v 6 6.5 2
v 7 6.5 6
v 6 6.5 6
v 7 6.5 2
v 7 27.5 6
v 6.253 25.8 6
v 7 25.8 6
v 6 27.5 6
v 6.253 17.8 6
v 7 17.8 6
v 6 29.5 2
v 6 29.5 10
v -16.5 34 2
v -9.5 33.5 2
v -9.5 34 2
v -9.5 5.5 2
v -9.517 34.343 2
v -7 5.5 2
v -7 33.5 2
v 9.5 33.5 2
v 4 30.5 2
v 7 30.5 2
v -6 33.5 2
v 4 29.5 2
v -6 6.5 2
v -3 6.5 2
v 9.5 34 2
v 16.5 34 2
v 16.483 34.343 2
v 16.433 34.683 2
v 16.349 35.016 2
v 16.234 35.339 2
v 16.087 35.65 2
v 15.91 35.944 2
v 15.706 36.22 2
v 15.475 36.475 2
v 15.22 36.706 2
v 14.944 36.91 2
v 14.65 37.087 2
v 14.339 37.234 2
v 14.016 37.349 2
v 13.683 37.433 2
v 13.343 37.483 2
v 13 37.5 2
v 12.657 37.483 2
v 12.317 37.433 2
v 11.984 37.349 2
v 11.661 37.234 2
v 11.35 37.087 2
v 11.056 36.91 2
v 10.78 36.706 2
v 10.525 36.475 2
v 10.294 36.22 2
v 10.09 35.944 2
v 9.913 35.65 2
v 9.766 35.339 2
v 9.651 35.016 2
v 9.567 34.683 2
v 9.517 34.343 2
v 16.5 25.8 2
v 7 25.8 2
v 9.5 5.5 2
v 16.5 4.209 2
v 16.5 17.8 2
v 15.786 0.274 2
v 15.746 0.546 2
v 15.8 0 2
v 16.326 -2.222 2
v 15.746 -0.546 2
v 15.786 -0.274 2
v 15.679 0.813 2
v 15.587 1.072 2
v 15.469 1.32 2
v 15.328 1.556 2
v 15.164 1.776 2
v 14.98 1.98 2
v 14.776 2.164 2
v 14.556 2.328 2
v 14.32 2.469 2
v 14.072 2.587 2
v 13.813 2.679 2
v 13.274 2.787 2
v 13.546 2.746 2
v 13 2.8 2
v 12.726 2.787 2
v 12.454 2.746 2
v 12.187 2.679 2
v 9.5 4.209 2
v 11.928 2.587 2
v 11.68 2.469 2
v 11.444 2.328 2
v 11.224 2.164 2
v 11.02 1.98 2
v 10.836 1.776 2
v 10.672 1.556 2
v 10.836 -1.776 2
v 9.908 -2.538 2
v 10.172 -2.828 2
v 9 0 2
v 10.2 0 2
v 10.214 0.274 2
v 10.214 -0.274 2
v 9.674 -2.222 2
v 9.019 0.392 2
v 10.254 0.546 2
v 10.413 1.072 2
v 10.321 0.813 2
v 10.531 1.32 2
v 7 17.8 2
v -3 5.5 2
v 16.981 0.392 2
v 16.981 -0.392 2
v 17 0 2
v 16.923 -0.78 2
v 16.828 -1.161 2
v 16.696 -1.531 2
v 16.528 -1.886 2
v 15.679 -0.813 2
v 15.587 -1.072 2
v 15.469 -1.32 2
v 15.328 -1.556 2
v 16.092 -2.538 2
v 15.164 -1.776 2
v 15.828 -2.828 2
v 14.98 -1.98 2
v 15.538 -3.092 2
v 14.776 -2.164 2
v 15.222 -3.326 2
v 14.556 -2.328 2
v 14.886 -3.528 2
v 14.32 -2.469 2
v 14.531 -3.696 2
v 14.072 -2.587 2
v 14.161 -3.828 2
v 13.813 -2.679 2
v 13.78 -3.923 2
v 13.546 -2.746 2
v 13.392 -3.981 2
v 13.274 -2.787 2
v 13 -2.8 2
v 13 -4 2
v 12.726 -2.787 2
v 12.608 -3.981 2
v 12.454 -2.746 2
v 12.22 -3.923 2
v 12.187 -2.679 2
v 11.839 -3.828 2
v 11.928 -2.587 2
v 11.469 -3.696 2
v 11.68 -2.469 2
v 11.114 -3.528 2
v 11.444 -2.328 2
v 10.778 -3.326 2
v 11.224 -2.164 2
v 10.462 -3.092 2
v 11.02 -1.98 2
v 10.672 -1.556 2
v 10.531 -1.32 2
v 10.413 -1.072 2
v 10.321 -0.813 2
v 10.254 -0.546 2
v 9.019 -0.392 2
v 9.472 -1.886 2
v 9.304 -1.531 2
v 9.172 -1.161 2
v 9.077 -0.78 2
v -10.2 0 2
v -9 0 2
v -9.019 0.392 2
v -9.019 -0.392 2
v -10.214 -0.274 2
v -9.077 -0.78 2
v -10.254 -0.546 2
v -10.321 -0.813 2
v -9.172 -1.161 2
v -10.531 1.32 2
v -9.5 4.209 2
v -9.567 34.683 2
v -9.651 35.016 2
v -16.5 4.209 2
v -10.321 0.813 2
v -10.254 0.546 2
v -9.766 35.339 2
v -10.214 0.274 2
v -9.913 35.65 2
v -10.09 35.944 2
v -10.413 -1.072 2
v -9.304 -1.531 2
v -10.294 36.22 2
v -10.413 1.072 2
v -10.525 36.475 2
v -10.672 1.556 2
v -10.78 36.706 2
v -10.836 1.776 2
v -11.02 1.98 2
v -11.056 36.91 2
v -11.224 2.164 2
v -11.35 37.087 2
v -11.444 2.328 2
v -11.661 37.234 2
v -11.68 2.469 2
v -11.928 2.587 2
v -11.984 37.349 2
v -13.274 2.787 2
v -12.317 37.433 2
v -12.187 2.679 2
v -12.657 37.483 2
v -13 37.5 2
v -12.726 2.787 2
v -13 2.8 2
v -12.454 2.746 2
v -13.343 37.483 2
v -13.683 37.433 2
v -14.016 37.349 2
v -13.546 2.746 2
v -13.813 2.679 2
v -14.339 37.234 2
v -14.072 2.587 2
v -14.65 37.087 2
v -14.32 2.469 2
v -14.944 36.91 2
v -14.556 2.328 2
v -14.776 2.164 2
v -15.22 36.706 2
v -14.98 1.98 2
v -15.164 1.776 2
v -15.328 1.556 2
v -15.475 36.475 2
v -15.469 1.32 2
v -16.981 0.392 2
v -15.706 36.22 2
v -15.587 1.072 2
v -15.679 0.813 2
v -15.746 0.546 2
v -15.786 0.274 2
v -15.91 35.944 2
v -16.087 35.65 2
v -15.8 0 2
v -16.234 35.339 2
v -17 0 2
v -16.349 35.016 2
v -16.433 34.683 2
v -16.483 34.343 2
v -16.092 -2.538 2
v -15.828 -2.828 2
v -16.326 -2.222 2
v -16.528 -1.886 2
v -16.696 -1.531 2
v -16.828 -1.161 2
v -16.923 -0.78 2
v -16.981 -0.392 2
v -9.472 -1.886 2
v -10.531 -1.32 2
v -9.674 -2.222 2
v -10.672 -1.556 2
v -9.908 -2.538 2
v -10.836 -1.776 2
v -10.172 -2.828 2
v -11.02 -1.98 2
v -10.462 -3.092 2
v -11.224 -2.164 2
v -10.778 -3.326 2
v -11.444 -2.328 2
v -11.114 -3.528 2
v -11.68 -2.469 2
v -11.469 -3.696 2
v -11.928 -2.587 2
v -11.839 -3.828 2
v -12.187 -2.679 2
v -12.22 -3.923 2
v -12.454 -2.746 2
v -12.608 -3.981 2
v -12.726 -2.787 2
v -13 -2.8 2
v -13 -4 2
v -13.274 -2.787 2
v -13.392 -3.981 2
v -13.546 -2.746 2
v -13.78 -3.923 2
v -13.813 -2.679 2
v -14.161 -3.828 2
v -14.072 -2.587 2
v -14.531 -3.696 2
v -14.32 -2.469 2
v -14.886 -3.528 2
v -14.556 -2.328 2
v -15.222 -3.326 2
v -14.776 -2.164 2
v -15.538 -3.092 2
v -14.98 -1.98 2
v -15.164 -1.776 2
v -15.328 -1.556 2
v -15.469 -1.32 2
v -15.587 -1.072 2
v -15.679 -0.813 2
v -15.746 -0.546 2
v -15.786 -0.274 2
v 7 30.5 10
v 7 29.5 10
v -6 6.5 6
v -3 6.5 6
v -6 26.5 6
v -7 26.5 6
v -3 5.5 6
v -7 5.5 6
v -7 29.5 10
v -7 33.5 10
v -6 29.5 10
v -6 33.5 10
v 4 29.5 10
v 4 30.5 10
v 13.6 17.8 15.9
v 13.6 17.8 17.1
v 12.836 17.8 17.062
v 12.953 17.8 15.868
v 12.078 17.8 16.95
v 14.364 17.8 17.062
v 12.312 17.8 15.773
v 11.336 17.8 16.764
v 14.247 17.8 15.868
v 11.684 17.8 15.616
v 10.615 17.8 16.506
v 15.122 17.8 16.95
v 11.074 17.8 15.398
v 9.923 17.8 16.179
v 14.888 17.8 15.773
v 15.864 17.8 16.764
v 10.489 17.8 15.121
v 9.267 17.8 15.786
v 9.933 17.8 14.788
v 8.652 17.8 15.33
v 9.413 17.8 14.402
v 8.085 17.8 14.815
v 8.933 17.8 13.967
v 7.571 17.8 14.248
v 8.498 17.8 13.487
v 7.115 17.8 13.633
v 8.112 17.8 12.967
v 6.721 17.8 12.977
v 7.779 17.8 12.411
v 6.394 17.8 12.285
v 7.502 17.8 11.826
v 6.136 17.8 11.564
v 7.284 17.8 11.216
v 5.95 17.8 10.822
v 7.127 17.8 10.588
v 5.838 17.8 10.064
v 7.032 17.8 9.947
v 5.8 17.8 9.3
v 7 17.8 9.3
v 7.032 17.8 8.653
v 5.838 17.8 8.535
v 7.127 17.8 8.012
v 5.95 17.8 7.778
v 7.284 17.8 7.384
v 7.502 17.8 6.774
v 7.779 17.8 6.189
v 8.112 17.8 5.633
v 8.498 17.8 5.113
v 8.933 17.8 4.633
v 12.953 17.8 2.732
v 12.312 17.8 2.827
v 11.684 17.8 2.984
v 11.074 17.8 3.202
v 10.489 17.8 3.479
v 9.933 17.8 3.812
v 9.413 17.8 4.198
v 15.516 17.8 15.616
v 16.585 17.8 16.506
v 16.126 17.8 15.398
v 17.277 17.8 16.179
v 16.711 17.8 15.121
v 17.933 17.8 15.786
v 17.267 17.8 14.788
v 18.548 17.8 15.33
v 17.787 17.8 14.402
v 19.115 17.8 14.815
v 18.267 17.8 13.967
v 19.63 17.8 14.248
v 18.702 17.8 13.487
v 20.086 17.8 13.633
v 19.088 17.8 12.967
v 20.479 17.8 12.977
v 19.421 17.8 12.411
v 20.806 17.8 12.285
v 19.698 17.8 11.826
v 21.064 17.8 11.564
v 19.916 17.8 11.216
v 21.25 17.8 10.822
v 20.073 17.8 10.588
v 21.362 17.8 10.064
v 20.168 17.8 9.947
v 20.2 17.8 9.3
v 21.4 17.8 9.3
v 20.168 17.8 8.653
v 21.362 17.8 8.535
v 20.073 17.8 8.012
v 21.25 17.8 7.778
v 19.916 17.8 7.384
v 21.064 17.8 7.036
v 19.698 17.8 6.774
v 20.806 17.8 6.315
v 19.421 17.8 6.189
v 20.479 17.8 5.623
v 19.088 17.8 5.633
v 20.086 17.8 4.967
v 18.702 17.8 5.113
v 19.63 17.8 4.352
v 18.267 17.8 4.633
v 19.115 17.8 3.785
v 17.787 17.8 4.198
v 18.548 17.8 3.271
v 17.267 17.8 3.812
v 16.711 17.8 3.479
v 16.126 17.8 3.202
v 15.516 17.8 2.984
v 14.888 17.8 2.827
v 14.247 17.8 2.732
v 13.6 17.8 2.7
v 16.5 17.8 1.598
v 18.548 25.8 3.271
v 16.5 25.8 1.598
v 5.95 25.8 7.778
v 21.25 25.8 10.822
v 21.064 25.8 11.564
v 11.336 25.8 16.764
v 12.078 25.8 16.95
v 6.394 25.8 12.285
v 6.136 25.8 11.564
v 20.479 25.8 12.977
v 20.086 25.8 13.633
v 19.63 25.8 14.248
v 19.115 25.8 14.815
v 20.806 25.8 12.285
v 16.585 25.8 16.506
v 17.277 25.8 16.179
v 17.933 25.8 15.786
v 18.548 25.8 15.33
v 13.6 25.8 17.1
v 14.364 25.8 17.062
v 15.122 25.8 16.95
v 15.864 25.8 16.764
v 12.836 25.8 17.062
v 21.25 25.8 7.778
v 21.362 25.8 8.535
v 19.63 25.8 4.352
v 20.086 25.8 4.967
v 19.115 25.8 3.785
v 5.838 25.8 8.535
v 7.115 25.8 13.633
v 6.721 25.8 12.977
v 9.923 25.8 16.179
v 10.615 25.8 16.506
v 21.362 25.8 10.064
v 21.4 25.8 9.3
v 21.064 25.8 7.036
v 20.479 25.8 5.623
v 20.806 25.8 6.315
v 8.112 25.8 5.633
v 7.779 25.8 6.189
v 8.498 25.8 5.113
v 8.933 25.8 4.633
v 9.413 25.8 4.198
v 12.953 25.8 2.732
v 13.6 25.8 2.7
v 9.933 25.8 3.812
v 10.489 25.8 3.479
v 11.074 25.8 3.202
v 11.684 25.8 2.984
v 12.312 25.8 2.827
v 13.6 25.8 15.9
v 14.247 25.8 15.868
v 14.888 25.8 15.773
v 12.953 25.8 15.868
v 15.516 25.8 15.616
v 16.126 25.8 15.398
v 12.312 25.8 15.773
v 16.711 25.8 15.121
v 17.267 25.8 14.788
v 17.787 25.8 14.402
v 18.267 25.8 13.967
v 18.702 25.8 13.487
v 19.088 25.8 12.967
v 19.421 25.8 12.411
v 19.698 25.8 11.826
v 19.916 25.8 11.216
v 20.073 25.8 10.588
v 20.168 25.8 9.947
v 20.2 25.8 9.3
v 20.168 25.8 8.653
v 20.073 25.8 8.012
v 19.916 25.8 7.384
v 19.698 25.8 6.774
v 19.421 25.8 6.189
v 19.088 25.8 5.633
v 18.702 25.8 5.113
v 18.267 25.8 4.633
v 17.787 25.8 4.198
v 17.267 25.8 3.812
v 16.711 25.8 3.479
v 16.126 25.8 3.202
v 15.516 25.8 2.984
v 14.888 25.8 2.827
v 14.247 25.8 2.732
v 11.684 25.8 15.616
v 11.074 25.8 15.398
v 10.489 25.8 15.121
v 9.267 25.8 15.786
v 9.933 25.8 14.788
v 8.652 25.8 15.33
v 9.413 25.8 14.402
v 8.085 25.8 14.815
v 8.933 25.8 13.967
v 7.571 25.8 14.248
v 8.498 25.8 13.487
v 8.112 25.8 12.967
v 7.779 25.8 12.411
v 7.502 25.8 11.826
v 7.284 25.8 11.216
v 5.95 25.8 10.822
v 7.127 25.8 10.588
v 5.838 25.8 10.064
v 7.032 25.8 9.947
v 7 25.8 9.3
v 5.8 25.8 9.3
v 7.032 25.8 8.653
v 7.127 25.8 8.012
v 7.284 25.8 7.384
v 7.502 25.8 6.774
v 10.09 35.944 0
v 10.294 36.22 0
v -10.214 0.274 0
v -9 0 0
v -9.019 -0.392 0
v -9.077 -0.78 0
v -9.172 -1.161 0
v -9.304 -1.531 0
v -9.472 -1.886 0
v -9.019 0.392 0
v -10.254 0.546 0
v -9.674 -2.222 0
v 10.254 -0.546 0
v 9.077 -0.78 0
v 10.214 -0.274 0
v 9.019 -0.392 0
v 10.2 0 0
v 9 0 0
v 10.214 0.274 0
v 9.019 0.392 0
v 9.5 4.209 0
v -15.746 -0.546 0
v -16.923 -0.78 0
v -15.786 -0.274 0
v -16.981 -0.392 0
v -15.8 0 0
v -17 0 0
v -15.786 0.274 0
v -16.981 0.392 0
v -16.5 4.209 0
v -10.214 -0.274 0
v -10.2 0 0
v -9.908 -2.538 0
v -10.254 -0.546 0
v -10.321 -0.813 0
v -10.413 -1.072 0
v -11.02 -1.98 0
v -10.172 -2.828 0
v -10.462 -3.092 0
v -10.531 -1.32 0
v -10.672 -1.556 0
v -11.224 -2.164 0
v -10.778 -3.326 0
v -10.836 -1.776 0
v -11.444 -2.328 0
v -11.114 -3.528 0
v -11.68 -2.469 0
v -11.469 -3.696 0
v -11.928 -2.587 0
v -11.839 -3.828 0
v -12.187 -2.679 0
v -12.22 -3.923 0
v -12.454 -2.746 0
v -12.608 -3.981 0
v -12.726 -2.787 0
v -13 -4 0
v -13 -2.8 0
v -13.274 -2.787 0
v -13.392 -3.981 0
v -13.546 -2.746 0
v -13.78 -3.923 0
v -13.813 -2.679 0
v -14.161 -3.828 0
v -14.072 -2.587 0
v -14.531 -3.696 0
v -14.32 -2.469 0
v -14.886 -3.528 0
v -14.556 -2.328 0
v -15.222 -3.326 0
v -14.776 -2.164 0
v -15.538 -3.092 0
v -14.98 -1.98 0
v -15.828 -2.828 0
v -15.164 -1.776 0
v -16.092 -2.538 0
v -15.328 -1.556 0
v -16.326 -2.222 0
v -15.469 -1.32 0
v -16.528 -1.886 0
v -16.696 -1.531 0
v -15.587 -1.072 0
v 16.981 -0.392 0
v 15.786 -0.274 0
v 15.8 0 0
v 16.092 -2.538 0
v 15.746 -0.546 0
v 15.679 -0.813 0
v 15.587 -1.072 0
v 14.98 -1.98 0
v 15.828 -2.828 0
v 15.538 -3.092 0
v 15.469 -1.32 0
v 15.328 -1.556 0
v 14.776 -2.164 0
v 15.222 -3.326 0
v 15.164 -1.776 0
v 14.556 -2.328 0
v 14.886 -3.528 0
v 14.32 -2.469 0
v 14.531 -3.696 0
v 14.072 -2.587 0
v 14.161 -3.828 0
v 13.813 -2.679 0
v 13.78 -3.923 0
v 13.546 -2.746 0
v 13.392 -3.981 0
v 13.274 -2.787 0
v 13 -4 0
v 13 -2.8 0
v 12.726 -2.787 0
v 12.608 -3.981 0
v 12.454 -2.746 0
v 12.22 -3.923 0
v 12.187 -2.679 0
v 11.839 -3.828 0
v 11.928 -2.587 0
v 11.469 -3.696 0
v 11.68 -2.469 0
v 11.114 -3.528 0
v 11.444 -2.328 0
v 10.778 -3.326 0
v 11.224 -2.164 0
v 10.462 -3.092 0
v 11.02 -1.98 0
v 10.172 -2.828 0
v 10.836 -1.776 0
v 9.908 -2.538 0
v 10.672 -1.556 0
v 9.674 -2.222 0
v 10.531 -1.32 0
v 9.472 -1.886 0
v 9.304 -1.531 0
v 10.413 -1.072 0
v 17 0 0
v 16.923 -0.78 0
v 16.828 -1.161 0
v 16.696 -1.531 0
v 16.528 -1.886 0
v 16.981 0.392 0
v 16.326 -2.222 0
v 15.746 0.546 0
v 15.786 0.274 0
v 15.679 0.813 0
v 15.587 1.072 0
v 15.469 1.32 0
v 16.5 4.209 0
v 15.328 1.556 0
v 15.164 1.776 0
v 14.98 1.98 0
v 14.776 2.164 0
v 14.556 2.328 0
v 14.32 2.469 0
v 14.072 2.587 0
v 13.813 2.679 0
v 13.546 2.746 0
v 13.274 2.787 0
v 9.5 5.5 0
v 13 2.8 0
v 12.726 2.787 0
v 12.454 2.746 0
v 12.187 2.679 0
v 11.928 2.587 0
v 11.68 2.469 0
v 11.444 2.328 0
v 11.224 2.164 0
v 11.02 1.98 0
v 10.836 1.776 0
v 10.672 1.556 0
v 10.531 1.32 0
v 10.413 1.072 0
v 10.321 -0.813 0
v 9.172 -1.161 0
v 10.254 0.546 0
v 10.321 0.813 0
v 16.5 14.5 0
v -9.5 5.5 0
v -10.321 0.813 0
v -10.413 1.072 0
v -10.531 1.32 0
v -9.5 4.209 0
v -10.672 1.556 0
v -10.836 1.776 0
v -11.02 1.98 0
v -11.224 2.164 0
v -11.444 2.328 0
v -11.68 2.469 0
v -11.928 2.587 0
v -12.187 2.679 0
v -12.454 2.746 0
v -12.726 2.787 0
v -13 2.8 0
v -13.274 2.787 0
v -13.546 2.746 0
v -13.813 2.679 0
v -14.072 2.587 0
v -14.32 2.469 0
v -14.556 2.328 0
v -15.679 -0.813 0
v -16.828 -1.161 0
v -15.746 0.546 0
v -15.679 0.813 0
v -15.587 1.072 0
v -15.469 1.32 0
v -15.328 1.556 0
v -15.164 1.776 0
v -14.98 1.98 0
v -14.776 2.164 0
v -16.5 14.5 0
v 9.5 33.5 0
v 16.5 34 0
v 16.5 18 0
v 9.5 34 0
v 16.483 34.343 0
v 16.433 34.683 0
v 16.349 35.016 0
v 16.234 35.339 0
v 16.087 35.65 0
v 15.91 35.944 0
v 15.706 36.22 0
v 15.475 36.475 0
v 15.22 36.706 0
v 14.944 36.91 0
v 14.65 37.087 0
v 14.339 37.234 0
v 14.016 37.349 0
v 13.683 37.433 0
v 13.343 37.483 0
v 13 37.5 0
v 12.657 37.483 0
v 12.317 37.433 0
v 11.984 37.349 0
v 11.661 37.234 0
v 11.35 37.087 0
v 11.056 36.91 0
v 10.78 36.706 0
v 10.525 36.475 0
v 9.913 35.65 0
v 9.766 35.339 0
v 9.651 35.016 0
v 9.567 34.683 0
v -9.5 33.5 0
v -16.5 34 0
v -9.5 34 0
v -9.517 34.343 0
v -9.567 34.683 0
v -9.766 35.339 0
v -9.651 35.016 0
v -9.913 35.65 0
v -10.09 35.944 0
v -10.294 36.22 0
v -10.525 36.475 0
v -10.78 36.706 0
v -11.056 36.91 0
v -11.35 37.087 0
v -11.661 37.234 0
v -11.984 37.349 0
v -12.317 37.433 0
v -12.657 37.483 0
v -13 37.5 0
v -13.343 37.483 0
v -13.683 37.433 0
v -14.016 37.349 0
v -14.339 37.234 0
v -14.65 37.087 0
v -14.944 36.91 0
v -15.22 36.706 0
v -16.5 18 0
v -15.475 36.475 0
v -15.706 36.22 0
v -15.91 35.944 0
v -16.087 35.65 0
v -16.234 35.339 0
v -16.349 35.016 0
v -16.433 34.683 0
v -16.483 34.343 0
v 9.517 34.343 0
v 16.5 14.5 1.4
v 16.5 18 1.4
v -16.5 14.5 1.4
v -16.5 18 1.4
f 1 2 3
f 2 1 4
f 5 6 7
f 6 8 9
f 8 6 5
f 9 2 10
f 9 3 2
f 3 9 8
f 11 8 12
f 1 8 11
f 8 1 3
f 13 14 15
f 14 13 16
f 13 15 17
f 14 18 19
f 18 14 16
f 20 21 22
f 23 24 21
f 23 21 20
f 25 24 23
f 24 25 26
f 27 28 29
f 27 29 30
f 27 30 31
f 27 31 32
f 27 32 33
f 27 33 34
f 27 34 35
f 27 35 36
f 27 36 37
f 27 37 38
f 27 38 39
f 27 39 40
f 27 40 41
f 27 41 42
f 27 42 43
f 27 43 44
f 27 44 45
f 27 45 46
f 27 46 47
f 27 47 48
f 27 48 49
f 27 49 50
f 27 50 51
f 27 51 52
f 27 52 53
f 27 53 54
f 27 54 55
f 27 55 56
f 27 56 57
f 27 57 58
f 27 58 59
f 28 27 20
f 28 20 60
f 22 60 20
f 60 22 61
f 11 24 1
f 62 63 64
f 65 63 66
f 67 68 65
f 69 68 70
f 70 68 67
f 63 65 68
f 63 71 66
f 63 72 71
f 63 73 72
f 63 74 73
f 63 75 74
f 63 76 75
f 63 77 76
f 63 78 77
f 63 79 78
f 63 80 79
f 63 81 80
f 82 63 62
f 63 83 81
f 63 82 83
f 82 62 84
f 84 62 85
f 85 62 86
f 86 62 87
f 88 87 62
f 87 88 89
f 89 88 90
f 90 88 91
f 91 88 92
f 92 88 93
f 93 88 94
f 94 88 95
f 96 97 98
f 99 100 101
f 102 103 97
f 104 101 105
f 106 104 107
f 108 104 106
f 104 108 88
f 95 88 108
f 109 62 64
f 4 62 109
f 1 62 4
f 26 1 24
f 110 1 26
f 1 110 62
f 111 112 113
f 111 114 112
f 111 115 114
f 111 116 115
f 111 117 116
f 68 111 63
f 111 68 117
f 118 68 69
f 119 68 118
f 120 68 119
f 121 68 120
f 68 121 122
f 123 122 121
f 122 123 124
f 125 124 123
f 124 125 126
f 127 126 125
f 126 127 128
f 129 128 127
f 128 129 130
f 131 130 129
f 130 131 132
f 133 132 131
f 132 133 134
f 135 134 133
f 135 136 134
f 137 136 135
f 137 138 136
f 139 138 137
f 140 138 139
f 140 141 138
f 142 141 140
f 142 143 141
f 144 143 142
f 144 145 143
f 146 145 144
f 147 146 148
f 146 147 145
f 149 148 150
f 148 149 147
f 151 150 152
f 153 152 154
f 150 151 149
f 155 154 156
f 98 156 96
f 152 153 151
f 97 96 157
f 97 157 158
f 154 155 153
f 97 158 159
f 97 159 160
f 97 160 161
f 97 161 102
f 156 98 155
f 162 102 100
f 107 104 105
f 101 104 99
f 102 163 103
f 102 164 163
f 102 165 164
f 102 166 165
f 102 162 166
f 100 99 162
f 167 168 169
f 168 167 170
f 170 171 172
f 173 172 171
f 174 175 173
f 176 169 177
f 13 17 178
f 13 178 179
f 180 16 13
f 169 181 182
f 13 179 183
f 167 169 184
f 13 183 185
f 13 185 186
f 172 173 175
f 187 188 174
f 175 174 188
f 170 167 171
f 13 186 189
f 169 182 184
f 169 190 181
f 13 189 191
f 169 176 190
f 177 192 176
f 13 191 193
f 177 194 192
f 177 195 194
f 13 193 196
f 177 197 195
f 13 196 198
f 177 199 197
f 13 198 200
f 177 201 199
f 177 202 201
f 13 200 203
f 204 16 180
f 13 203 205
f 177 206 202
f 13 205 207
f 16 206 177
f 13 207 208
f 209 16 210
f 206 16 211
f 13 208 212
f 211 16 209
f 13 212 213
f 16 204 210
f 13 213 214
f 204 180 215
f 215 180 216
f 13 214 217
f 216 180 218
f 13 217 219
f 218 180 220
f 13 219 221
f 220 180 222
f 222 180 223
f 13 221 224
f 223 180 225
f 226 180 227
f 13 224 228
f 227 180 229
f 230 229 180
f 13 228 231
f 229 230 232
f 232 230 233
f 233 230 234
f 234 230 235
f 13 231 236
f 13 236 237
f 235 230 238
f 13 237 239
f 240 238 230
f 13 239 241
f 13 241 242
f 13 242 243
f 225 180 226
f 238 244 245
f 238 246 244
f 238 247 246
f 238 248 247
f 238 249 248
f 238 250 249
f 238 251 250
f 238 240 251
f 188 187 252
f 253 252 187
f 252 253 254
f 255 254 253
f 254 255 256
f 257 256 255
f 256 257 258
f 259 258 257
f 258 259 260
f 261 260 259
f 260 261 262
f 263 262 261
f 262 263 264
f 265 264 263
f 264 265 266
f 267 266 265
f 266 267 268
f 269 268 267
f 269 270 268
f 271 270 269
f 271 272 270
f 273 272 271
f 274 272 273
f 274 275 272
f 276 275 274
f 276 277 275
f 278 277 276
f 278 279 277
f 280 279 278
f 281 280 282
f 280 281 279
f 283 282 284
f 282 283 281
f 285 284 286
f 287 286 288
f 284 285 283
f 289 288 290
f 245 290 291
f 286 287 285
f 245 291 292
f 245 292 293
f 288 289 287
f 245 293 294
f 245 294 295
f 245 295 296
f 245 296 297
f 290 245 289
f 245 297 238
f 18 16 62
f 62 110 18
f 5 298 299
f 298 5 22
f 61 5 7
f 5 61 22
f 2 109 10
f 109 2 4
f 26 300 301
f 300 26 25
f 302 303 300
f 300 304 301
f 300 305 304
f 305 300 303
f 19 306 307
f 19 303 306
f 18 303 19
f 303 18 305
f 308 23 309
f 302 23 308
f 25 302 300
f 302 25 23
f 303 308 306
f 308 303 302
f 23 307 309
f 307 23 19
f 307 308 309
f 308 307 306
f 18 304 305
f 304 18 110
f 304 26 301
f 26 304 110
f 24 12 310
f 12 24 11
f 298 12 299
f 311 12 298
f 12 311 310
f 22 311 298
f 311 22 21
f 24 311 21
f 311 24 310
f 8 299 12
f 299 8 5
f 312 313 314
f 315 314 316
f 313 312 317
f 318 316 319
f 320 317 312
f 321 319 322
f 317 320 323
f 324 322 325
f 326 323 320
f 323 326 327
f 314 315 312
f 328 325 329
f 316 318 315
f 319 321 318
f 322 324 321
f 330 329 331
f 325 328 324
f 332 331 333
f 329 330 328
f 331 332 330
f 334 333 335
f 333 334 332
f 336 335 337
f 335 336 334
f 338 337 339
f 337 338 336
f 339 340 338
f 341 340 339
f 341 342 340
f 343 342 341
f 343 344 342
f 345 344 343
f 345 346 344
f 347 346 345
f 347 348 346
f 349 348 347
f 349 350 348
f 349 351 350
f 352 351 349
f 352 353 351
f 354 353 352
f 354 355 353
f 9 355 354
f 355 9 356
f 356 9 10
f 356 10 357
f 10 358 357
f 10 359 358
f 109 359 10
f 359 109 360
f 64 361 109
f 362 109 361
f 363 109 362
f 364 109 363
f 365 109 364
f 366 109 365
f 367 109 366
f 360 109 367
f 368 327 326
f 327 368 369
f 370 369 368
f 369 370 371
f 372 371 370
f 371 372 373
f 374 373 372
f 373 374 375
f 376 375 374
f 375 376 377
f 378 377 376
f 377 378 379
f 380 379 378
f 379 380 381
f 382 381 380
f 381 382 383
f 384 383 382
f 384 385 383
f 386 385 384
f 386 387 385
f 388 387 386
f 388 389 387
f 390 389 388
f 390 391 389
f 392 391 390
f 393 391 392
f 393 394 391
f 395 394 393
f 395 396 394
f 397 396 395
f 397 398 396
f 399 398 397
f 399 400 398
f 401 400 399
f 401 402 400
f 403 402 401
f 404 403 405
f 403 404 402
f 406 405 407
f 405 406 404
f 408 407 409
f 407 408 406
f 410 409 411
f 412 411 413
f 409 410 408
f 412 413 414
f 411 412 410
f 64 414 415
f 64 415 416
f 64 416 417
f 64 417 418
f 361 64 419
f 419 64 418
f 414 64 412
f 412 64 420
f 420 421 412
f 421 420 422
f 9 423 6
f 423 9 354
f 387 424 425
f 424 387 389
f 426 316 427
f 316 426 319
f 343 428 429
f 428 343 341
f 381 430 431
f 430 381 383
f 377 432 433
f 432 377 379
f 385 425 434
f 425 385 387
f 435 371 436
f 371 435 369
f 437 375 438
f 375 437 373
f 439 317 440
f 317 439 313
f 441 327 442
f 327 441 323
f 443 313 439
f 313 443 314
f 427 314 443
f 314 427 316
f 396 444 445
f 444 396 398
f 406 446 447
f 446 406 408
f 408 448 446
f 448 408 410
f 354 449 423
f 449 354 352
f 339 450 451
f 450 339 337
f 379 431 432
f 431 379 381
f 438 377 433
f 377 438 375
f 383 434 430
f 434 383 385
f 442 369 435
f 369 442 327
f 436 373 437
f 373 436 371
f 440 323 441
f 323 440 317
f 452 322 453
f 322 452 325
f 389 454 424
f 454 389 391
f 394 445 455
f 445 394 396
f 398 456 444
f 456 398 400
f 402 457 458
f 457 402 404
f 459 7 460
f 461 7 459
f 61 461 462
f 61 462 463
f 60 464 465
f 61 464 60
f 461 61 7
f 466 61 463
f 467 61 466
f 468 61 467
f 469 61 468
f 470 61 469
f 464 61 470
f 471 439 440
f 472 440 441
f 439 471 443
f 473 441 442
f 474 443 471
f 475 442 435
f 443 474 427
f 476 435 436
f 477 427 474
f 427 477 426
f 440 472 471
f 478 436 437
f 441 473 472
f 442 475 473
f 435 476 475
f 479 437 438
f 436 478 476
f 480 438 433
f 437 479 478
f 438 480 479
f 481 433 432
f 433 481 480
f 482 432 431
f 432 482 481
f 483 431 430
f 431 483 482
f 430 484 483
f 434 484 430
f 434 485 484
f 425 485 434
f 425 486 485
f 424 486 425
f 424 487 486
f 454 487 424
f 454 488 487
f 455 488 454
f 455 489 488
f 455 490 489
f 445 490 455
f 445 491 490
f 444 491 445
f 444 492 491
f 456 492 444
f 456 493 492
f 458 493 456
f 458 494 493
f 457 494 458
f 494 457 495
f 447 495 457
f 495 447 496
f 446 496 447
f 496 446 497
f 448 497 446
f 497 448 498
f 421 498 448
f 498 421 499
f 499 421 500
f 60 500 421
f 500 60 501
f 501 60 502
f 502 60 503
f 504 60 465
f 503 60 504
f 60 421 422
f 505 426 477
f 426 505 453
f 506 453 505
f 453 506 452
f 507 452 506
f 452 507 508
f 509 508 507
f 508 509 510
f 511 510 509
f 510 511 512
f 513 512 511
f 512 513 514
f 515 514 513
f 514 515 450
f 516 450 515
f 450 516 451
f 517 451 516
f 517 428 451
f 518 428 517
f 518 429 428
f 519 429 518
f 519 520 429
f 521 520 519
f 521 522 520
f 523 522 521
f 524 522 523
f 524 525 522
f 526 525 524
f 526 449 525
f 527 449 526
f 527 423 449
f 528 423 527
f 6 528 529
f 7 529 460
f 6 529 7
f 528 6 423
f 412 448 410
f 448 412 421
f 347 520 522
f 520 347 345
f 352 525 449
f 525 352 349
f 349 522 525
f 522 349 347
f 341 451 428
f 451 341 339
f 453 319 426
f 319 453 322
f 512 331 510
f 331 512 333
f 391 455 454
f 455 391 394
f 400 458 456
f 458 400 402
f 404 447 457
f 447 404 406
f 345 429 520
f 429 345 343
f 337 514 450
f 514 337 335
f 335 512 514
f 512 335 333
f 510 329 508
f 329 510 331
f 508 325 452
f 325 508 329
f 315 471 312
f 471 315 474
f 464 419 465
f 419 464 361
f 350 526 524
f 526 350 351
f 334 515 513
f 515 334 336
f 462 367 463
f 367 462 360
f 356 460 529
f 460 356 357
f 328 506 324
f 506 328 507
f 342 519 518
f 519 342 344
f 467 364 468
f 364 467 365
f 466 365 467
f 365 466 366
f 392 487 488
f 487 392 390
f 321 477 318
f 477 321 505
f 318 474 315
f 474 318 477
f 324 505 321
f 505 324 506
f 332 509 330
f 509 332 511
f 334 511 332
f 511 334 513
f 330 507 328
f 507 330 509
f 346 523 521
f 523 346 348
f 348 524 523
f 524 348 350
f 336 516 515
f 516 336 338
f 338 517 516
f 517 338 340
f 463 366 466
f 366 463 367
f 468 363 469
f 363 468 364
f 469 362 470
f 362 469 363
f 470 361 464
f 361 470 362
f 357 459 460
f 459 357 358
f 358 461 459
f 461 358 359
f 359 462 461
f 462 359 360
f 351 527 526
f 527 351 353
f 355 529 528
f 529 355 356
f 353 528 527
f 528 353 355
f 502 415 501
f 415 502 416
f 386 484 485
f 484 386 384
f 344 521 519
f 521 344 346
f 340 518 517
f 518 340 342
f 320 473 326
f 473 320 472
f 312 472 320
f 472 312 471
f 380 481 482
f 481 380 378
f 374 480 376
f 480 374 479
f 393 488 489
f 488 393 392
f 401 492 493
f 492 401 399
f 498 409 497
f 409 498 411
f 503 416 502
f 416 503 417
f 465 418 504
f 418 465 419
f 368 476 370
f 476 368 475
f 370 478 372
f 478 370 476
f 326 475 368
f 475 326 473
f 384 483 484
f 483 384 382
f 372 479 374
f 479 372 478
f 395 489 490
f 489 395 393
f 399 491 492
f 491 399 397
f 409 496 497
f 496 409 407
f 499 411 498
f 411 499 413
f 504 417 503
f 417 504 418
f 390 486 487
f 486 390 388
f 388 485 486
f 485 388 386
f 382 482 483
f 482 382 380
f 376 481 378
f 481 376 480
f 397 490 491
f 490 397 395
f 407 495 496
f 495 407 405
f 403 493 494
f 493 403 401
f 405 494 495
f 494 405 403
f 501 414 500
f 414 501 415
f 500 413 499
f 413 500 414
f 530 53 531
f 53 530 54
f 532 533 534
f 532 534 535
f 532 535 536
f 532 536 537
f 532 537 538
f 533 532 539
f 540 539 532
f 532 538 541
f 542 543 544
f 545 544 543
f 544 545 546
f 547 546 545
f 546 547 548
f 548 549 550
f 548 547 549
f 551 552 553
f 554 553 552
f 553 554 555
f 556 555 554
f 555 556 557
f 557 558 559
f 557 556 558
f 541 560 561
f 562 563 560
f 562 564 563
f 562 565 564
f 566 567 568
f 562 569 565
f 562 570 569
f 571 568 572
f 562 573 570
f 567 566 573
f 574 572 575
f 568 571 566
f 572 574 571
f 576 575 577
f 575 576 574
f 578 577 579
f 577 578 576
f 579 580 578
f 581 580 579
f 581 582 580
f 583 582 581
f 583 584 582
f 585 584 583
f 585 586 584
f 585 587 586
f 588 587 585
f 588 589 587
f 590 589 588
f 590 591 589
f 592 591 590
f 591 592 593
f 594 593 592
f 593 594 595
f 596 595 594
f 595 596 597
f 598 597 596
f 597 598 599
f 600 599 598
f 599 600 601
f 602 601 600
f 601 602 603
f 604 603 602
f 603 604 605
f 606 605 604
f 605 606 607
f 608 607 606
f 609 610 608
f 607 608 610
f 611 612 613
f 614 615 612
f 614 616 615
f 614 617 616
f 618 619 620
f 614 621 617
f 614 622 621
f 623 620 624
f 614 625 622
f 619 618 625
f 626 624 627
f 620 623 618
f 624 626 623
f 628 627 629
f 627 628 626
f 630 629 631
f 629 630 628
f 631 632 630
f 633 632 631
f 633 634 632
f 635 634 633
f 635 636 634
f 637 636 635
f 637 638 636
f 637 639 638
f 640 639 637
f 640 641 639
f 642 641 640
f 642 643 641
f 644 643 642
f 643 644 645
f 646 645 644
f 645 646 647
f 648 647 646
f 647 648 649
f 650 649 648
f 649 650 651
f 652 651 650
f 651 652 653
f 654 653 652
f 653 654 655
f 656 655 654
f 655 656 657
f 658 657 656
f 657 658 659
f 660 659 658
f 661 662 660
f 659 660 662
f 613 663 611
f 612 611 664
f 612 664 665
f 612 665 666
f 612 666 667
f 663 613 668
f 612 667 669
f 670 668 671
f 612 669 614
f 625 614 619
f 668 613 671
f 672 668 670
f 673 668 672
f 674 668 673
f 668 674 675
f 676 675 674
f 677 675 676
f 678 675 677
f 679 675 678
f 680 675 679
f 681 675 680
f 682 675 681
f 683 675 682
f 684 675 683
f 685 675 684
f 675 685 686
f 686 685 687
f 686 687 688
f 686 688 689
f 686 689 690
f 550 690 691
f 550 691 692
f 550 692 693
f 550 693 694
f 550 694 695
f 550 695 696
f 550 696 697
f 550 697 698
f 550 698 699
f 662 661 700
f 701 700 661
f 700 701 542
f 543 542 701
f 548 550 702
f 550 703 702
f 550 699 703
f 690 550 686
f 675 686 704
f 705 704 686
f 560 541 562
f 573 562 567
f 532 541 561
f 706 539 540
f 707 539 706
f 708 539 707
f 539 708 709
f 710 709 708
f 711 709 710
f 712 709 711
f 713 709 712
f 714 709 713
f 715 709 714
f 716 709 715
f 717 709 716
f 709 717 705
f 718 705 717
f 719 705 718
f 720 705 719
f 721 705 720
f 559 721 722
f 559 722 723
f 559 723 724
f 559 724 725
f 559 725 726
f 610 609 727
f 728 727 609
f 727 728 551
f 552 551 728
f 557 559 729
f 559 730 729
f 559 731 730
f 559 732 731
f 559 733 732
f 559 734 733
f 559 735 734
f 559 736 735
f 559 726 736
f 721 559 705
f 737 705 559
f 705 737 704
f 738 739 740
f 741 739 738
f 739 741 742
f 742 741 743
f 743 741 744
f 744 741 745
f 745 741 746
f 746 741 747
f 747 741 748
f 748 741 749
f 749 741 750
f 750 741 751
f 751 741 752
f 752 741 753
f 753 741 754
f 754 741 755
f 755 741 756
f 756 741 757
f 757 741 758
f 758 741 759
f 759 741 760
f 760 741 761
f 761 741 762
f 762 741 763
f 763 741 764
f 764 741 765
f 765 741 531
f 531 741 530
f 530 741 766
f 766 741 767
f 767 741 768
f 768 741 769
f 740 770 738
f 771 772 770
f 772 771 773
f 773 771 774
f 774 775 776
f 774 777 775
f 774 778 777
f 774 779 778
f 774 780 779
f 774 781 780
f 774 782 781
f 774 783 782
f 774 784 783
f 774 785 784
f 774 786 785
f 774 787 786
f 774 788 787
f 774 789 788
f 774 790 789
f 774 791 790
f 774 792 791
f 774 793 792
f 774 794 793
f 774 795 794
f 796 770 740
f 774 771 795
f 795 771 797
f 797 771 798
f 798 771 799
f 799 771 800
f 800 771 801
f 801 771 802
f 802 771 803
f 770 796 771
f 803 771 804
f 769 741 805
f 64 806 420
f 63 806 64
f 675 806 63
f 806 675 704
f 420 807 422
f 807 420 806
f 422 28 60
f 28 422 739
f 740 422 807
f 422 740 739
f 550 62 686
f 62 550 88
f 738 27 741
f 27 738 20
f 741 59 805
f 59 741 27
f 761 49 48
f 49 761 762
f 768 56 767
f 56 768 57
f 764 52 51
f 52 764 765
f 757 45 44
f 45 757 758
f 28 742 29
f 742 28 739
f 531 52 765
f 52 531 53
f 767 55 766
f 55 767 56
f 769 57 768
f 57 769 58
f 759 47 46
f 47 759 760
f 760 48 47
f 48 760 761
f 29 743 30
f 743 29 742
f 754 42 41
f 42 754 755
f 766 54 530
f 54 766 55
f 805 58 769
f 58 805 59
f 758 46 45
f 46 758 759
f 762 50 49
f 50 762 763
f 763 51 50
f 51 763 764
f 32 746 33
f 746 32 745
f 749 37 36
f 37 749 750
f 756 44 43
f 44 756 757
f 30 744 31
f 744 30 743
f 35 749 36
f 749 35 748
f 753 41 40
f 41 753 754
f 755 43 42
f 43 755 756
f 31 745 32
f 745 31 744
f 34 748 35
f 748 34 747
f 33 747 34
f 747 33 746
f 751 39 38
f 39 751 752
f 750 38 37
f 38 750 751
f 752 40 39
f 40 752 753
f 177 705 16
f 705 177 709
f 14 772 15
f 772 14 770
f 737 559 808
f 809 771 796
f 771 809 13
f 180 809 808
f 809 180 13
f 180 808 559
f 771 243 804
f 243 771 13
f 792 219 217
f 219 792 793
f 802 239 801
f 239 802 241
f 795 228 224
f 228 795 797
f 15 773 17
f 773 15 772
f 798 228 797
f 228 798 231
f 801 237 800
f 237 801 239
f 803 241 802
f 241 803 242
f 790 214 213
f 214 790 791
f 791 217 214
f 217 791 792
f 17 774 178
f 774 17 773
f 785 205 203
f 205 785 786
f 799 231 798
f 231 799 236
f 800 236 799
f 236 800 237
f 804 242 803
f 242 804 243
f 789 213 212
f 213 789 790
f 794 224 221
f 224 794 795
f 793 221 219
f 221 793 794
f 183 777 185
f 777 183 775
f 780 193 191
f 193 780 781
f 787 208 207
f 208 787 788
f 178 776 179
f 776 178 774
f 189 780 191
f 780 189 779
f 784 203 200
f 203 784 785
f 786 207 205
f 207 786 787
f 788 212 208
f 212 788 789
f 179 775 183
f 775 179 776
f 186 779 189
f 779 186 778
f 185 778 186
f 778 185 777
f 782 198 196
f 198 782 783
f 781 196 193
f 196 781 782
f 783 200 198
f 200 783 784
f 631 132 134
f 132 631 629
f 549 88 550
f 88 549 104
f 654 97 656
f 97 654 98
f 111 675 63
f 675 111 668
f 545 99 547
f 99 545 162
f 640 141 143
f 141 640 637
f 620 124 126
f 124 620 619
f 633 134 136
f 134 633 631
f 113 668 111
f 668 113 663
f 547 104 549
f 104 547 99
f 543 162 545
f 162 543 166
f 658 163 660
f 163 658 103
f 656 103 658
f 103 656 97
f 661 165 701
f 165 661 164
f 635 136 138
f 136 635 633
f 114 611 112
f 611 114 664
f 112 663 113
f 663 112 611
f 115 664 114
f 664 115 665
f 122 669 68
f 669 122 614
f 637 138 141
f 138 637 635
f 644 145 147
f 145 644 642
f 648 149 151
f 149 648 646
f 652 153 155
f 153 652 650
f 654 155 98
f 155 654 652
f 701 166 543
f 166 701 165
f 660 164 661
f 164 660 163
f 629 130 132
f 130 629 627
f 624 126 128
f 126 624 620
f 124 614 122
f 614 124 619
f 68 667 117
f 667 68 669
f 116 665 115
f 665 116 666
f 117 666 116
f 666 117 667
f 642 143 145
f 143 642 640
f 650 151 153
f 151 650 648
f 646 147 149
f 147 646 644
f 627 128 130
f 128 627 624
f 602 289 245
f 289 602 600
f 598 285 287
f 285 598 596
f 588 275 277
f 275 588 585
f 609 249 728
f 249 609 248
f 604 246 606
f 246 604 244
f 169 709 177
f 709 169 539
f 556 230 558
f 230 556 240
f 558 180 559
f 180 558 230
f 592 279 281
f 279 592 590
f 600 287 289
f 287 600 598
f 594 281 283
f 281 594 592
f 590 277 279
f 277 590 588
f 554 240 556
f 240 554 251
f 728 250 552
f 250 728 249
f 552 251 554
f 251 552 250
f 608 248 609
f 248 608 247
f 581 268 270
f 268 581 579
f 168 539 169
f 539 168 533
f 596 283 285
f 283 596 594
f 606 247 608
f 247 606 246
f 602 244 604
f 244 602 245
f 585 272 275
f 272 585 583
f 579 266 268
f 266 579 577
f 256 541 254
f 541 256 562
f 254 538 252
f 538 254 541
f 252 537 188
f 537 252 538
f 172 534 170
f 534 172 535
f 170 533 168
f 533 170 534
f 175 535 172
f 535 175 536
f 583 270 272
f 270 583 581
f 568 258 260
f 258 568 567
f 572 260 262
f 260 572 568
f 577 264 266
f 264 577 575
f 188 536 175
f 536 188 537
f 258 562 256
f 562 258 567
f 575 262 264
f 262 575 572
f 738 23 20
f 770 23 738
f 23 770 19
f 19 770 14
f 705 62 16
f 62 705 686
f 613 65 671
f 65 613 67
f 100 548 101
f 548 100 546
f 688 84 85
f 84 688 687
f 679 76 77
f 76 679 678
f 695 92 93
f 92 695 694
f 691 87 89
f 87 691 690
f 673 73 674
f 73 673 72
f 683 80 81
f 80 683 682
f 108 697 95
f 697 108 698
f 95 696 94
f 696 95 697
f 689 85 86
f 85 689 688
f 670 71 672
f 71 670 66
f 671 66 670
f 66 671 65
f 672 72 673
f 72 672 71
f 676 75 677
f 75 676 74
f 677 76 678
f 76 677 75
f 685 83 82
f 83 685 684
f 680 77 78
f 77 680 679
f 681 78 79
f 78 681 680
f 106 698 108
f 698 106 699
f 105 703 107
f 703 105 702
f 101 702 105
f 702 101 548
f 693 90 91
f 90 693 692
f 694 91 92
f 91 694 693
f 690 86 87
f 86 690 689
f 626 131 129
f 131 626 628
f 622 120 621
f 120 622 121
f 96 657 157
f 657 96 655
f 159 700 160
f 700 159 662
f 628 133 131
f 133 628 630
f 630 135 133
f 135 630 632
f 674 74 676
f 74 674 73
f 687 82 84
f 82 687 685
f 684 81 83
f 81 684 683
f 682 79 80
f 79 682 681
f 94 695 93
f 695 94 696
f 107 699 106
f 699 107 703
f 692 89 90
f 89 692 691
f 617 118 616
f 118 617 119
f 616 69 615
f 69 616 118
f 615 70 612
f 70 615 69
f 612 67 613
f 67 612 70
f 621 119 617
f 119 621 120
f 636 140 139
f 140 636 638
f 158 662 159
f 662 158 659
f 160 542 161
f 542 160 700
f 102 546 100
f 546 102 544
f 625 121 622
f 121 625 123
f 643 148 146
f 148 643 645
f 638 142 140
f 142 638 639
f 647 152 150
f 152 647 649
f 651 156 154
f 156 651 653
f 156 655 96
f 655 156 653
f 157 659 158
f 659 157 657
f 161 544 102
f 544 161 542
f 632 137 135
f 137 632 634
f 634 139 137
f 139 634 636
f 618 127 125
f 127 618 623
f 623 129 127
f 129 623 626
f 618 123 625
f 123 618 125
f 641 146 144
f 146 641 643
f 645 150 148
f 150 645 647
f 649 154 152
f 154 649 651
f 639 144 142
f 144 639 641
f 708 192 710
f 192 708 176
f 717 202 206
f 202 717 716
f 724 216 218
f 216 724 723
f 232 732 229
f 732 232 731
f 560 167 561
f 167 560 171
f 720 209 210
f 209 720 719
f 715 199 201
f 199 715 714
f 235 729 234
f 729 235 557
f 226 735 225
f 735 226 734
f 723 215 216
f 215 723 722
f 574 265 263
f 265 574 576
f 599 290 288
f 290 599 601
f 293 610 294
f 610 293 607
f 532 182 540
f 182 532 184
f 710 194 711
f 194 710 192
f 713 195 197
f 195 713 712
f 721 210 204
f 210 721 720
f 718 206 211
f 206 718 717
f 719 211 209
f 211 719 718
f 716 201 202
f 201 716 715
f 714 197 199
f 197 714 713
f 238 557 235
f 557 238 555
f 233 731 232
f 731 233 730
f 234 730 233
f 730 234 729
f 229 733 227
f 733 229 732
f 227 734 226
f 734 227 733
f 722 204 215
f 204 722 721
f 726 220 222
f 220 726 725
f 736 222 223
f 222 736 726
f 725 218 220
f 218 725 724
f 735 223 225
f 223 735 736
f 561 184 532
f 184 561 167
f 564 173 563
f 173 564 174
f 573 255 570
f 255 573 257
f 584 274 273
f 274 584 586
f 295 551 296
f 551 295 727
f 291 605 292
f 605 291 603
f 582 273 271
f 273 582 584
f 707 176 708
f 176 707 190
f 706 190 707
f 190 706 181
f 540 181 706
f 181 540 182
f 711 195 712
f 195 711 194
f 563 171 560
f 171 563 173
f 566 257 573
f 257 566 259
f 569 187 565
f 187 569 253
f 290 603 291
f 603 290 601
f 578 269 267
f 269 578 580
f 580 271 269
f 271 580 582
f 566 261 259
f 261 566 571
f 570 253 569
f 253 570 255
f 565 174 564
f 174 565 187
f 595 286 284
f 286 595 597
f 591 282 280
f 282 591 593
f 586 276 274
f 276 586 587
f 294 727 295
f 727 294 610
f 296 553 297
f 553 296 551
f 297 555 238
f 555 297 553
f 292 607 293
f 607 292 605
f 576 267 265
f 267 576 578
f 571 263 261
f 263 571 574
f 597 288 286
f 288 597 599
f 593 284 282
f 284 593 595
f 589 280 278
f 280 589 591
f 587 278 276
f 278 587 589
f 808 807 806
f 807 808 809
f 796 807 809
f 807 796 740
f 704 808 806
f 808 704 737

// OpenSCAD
/**
 * TBS Crossfire Nano mount for Armattan Chameleon (w/ cap mount)
 * 
 * This mount is intended for the Armattan Chameleon and holds
 * a TBS Crossfire Nano receiver (with heat shrink) and additionally 
 * a cap for noise reduction (default ring fits Panasonic 
 * FR-series 1000uF 35V cap).
 *
 * You need to replace the back standoffs with regular standoffs
 * to fit this mount.
 */ 
$fn = 64;

washer_diameter = 7;
strut_height = 2;
standoff_diameter = 5.6;
hole_spacing_back = 26;
washer_diameter = 7;
bend_length = 8;


// RX
rx_width = 12 ;
rx_length = 21;
rx_bevel_height = 4;
rx_bevel_width = 1;
zip_tie_width = 3.5;
zip_tie_height = 1.4;

cap_diameter = 13.2;
cap_retention_height = 8;

// standoff diameter + ring (uses a fixed value because 8.5 seems to be the magic number
// to make everything flush with the back end of the frame
sodpr = standoff_diameter + 2.4; // standoff_diameter + 2.4
// cap diameter plus ring
cdpr = cap_diameter + 2.4;
// hole spacing back half
hsbh = hole_spacing_back / 2;
// space between back struts
strut_spacing = hole_spacing_back - washer_diameter;
// bend length half
blh = bend_length / 2;
// strut spacing half
ssh = strut_spacing / 2;

module rx_mount() {

    // rx module mount
    difference() {
        union() {
            // transition struts
            hull() {
                translate([hsbh, 0, 0]) cylinder(d = washer_diameter, h = strut_height);
                translate([hsbh, 34, 0]) cylinder(d = washer_diameter, h = strut_height);
            }
            hull() {
                translate([-hsbh, 0, 0]) cylinder(d = washer_diameter, h = strut_height);
                translate([-hsbh, 34, 0]) cylinder(d = washer_diameter, h = strut_height);
            }            
            
            hull() {
                translate([hsbh, 0, 0]) cylinder(d = sodpr, h = strut_height);
                translate([hsbh, blh, 0]) cylinder(d = washer_diameter, h = strut_height);
            }
            hull() {
                translate([-hsbh, 0, 0]) cylinder(d = sodpr, h = strut_height);
                translate([-hsbh, blh, 0]) cylinder(d = washer_diameter, h = strut_height);
            }
            
            translate([-ssh, ssh - sodpr/2, 0]) cube([strut_spacing, rx_length + 7, 2]);
            
            // bevels 
            translate([rx_width/2 + rx_bevel_width, ssh - sodpr/2 + 1, 2]) rotate([0, 0, 90]) {
                cube([rx_length, rx_bevel_width, rx_bevel_height]);
                translate([0, rx_width + rx_bevel_width, 0]) cube([rx_length, rx_bevel_width, rx_bevel_height]);
                hull() {
                    translate([rx_length - 1, rx_width + rx_bevel_width, 0]) cube([2, rx_bevel_width, rx_bevel_height]);
                    translate([rx_length + 2, rx_width + rx_bevel_width, 0]) cube([4, rx_bevel_width, 2 * rx_bevel_height]);
                }
                translate([-rx_bevel_width, rx_width + rx_bevel_width - 3, 0]) cube([rx_bevel_width, 4, rx_bevel_height]);
                translate([rx_length + 2, 0, 0]) cube([rx_bevel_width, 3, 2 * rx_bevel_height]);
                hull() {
                    translate([rx_length + 2, 0, 0]) cube([rx_bevel_width, rx_bevel_width, 2 * rx_bevel_height]);
                    translate([rx_length, 0, 0]) cube([rx_bevel_width, rx_bevel_width, rx_bevel_height]);
                }    
            }
            
            translate([hole_spacing_back/2 + 0.6, 25.8, cdpr/2 + strut_height * 0.75]) 
            rotate([90, -90, 0]) difference() {
                hull() {
                    cylinder(d = cdpr, h = cap_retention_height);
                    translate([-cdpr /2, -cdpr/2 * 0.6 + 1.9, 0]) cube([1, cdpr * 0.6, cap_retention_height]);
                }
                translate([0, 0, -0.01]) cylinder(d = cap_diameter, h = cap_retention_height + 0.02);
            }
        }
        // holes for standoffs
        translate([hsbh, 0, -0.01]) cylinder(d = standoff_diameter, h = strut_height + 0.02);
        translate([-hsbh, 0, -0.01]) cylinder(d = standoff_diameter, h = strut_height + 0.02);
        
        translate([-strut_spacing, sodpr/2 + 14 - zip_tie_width, -0.01]) cube([strut_spacing * 2, zip_tie_width, zip_tie_height + 0.01]);
    }
}

rx_mount();
